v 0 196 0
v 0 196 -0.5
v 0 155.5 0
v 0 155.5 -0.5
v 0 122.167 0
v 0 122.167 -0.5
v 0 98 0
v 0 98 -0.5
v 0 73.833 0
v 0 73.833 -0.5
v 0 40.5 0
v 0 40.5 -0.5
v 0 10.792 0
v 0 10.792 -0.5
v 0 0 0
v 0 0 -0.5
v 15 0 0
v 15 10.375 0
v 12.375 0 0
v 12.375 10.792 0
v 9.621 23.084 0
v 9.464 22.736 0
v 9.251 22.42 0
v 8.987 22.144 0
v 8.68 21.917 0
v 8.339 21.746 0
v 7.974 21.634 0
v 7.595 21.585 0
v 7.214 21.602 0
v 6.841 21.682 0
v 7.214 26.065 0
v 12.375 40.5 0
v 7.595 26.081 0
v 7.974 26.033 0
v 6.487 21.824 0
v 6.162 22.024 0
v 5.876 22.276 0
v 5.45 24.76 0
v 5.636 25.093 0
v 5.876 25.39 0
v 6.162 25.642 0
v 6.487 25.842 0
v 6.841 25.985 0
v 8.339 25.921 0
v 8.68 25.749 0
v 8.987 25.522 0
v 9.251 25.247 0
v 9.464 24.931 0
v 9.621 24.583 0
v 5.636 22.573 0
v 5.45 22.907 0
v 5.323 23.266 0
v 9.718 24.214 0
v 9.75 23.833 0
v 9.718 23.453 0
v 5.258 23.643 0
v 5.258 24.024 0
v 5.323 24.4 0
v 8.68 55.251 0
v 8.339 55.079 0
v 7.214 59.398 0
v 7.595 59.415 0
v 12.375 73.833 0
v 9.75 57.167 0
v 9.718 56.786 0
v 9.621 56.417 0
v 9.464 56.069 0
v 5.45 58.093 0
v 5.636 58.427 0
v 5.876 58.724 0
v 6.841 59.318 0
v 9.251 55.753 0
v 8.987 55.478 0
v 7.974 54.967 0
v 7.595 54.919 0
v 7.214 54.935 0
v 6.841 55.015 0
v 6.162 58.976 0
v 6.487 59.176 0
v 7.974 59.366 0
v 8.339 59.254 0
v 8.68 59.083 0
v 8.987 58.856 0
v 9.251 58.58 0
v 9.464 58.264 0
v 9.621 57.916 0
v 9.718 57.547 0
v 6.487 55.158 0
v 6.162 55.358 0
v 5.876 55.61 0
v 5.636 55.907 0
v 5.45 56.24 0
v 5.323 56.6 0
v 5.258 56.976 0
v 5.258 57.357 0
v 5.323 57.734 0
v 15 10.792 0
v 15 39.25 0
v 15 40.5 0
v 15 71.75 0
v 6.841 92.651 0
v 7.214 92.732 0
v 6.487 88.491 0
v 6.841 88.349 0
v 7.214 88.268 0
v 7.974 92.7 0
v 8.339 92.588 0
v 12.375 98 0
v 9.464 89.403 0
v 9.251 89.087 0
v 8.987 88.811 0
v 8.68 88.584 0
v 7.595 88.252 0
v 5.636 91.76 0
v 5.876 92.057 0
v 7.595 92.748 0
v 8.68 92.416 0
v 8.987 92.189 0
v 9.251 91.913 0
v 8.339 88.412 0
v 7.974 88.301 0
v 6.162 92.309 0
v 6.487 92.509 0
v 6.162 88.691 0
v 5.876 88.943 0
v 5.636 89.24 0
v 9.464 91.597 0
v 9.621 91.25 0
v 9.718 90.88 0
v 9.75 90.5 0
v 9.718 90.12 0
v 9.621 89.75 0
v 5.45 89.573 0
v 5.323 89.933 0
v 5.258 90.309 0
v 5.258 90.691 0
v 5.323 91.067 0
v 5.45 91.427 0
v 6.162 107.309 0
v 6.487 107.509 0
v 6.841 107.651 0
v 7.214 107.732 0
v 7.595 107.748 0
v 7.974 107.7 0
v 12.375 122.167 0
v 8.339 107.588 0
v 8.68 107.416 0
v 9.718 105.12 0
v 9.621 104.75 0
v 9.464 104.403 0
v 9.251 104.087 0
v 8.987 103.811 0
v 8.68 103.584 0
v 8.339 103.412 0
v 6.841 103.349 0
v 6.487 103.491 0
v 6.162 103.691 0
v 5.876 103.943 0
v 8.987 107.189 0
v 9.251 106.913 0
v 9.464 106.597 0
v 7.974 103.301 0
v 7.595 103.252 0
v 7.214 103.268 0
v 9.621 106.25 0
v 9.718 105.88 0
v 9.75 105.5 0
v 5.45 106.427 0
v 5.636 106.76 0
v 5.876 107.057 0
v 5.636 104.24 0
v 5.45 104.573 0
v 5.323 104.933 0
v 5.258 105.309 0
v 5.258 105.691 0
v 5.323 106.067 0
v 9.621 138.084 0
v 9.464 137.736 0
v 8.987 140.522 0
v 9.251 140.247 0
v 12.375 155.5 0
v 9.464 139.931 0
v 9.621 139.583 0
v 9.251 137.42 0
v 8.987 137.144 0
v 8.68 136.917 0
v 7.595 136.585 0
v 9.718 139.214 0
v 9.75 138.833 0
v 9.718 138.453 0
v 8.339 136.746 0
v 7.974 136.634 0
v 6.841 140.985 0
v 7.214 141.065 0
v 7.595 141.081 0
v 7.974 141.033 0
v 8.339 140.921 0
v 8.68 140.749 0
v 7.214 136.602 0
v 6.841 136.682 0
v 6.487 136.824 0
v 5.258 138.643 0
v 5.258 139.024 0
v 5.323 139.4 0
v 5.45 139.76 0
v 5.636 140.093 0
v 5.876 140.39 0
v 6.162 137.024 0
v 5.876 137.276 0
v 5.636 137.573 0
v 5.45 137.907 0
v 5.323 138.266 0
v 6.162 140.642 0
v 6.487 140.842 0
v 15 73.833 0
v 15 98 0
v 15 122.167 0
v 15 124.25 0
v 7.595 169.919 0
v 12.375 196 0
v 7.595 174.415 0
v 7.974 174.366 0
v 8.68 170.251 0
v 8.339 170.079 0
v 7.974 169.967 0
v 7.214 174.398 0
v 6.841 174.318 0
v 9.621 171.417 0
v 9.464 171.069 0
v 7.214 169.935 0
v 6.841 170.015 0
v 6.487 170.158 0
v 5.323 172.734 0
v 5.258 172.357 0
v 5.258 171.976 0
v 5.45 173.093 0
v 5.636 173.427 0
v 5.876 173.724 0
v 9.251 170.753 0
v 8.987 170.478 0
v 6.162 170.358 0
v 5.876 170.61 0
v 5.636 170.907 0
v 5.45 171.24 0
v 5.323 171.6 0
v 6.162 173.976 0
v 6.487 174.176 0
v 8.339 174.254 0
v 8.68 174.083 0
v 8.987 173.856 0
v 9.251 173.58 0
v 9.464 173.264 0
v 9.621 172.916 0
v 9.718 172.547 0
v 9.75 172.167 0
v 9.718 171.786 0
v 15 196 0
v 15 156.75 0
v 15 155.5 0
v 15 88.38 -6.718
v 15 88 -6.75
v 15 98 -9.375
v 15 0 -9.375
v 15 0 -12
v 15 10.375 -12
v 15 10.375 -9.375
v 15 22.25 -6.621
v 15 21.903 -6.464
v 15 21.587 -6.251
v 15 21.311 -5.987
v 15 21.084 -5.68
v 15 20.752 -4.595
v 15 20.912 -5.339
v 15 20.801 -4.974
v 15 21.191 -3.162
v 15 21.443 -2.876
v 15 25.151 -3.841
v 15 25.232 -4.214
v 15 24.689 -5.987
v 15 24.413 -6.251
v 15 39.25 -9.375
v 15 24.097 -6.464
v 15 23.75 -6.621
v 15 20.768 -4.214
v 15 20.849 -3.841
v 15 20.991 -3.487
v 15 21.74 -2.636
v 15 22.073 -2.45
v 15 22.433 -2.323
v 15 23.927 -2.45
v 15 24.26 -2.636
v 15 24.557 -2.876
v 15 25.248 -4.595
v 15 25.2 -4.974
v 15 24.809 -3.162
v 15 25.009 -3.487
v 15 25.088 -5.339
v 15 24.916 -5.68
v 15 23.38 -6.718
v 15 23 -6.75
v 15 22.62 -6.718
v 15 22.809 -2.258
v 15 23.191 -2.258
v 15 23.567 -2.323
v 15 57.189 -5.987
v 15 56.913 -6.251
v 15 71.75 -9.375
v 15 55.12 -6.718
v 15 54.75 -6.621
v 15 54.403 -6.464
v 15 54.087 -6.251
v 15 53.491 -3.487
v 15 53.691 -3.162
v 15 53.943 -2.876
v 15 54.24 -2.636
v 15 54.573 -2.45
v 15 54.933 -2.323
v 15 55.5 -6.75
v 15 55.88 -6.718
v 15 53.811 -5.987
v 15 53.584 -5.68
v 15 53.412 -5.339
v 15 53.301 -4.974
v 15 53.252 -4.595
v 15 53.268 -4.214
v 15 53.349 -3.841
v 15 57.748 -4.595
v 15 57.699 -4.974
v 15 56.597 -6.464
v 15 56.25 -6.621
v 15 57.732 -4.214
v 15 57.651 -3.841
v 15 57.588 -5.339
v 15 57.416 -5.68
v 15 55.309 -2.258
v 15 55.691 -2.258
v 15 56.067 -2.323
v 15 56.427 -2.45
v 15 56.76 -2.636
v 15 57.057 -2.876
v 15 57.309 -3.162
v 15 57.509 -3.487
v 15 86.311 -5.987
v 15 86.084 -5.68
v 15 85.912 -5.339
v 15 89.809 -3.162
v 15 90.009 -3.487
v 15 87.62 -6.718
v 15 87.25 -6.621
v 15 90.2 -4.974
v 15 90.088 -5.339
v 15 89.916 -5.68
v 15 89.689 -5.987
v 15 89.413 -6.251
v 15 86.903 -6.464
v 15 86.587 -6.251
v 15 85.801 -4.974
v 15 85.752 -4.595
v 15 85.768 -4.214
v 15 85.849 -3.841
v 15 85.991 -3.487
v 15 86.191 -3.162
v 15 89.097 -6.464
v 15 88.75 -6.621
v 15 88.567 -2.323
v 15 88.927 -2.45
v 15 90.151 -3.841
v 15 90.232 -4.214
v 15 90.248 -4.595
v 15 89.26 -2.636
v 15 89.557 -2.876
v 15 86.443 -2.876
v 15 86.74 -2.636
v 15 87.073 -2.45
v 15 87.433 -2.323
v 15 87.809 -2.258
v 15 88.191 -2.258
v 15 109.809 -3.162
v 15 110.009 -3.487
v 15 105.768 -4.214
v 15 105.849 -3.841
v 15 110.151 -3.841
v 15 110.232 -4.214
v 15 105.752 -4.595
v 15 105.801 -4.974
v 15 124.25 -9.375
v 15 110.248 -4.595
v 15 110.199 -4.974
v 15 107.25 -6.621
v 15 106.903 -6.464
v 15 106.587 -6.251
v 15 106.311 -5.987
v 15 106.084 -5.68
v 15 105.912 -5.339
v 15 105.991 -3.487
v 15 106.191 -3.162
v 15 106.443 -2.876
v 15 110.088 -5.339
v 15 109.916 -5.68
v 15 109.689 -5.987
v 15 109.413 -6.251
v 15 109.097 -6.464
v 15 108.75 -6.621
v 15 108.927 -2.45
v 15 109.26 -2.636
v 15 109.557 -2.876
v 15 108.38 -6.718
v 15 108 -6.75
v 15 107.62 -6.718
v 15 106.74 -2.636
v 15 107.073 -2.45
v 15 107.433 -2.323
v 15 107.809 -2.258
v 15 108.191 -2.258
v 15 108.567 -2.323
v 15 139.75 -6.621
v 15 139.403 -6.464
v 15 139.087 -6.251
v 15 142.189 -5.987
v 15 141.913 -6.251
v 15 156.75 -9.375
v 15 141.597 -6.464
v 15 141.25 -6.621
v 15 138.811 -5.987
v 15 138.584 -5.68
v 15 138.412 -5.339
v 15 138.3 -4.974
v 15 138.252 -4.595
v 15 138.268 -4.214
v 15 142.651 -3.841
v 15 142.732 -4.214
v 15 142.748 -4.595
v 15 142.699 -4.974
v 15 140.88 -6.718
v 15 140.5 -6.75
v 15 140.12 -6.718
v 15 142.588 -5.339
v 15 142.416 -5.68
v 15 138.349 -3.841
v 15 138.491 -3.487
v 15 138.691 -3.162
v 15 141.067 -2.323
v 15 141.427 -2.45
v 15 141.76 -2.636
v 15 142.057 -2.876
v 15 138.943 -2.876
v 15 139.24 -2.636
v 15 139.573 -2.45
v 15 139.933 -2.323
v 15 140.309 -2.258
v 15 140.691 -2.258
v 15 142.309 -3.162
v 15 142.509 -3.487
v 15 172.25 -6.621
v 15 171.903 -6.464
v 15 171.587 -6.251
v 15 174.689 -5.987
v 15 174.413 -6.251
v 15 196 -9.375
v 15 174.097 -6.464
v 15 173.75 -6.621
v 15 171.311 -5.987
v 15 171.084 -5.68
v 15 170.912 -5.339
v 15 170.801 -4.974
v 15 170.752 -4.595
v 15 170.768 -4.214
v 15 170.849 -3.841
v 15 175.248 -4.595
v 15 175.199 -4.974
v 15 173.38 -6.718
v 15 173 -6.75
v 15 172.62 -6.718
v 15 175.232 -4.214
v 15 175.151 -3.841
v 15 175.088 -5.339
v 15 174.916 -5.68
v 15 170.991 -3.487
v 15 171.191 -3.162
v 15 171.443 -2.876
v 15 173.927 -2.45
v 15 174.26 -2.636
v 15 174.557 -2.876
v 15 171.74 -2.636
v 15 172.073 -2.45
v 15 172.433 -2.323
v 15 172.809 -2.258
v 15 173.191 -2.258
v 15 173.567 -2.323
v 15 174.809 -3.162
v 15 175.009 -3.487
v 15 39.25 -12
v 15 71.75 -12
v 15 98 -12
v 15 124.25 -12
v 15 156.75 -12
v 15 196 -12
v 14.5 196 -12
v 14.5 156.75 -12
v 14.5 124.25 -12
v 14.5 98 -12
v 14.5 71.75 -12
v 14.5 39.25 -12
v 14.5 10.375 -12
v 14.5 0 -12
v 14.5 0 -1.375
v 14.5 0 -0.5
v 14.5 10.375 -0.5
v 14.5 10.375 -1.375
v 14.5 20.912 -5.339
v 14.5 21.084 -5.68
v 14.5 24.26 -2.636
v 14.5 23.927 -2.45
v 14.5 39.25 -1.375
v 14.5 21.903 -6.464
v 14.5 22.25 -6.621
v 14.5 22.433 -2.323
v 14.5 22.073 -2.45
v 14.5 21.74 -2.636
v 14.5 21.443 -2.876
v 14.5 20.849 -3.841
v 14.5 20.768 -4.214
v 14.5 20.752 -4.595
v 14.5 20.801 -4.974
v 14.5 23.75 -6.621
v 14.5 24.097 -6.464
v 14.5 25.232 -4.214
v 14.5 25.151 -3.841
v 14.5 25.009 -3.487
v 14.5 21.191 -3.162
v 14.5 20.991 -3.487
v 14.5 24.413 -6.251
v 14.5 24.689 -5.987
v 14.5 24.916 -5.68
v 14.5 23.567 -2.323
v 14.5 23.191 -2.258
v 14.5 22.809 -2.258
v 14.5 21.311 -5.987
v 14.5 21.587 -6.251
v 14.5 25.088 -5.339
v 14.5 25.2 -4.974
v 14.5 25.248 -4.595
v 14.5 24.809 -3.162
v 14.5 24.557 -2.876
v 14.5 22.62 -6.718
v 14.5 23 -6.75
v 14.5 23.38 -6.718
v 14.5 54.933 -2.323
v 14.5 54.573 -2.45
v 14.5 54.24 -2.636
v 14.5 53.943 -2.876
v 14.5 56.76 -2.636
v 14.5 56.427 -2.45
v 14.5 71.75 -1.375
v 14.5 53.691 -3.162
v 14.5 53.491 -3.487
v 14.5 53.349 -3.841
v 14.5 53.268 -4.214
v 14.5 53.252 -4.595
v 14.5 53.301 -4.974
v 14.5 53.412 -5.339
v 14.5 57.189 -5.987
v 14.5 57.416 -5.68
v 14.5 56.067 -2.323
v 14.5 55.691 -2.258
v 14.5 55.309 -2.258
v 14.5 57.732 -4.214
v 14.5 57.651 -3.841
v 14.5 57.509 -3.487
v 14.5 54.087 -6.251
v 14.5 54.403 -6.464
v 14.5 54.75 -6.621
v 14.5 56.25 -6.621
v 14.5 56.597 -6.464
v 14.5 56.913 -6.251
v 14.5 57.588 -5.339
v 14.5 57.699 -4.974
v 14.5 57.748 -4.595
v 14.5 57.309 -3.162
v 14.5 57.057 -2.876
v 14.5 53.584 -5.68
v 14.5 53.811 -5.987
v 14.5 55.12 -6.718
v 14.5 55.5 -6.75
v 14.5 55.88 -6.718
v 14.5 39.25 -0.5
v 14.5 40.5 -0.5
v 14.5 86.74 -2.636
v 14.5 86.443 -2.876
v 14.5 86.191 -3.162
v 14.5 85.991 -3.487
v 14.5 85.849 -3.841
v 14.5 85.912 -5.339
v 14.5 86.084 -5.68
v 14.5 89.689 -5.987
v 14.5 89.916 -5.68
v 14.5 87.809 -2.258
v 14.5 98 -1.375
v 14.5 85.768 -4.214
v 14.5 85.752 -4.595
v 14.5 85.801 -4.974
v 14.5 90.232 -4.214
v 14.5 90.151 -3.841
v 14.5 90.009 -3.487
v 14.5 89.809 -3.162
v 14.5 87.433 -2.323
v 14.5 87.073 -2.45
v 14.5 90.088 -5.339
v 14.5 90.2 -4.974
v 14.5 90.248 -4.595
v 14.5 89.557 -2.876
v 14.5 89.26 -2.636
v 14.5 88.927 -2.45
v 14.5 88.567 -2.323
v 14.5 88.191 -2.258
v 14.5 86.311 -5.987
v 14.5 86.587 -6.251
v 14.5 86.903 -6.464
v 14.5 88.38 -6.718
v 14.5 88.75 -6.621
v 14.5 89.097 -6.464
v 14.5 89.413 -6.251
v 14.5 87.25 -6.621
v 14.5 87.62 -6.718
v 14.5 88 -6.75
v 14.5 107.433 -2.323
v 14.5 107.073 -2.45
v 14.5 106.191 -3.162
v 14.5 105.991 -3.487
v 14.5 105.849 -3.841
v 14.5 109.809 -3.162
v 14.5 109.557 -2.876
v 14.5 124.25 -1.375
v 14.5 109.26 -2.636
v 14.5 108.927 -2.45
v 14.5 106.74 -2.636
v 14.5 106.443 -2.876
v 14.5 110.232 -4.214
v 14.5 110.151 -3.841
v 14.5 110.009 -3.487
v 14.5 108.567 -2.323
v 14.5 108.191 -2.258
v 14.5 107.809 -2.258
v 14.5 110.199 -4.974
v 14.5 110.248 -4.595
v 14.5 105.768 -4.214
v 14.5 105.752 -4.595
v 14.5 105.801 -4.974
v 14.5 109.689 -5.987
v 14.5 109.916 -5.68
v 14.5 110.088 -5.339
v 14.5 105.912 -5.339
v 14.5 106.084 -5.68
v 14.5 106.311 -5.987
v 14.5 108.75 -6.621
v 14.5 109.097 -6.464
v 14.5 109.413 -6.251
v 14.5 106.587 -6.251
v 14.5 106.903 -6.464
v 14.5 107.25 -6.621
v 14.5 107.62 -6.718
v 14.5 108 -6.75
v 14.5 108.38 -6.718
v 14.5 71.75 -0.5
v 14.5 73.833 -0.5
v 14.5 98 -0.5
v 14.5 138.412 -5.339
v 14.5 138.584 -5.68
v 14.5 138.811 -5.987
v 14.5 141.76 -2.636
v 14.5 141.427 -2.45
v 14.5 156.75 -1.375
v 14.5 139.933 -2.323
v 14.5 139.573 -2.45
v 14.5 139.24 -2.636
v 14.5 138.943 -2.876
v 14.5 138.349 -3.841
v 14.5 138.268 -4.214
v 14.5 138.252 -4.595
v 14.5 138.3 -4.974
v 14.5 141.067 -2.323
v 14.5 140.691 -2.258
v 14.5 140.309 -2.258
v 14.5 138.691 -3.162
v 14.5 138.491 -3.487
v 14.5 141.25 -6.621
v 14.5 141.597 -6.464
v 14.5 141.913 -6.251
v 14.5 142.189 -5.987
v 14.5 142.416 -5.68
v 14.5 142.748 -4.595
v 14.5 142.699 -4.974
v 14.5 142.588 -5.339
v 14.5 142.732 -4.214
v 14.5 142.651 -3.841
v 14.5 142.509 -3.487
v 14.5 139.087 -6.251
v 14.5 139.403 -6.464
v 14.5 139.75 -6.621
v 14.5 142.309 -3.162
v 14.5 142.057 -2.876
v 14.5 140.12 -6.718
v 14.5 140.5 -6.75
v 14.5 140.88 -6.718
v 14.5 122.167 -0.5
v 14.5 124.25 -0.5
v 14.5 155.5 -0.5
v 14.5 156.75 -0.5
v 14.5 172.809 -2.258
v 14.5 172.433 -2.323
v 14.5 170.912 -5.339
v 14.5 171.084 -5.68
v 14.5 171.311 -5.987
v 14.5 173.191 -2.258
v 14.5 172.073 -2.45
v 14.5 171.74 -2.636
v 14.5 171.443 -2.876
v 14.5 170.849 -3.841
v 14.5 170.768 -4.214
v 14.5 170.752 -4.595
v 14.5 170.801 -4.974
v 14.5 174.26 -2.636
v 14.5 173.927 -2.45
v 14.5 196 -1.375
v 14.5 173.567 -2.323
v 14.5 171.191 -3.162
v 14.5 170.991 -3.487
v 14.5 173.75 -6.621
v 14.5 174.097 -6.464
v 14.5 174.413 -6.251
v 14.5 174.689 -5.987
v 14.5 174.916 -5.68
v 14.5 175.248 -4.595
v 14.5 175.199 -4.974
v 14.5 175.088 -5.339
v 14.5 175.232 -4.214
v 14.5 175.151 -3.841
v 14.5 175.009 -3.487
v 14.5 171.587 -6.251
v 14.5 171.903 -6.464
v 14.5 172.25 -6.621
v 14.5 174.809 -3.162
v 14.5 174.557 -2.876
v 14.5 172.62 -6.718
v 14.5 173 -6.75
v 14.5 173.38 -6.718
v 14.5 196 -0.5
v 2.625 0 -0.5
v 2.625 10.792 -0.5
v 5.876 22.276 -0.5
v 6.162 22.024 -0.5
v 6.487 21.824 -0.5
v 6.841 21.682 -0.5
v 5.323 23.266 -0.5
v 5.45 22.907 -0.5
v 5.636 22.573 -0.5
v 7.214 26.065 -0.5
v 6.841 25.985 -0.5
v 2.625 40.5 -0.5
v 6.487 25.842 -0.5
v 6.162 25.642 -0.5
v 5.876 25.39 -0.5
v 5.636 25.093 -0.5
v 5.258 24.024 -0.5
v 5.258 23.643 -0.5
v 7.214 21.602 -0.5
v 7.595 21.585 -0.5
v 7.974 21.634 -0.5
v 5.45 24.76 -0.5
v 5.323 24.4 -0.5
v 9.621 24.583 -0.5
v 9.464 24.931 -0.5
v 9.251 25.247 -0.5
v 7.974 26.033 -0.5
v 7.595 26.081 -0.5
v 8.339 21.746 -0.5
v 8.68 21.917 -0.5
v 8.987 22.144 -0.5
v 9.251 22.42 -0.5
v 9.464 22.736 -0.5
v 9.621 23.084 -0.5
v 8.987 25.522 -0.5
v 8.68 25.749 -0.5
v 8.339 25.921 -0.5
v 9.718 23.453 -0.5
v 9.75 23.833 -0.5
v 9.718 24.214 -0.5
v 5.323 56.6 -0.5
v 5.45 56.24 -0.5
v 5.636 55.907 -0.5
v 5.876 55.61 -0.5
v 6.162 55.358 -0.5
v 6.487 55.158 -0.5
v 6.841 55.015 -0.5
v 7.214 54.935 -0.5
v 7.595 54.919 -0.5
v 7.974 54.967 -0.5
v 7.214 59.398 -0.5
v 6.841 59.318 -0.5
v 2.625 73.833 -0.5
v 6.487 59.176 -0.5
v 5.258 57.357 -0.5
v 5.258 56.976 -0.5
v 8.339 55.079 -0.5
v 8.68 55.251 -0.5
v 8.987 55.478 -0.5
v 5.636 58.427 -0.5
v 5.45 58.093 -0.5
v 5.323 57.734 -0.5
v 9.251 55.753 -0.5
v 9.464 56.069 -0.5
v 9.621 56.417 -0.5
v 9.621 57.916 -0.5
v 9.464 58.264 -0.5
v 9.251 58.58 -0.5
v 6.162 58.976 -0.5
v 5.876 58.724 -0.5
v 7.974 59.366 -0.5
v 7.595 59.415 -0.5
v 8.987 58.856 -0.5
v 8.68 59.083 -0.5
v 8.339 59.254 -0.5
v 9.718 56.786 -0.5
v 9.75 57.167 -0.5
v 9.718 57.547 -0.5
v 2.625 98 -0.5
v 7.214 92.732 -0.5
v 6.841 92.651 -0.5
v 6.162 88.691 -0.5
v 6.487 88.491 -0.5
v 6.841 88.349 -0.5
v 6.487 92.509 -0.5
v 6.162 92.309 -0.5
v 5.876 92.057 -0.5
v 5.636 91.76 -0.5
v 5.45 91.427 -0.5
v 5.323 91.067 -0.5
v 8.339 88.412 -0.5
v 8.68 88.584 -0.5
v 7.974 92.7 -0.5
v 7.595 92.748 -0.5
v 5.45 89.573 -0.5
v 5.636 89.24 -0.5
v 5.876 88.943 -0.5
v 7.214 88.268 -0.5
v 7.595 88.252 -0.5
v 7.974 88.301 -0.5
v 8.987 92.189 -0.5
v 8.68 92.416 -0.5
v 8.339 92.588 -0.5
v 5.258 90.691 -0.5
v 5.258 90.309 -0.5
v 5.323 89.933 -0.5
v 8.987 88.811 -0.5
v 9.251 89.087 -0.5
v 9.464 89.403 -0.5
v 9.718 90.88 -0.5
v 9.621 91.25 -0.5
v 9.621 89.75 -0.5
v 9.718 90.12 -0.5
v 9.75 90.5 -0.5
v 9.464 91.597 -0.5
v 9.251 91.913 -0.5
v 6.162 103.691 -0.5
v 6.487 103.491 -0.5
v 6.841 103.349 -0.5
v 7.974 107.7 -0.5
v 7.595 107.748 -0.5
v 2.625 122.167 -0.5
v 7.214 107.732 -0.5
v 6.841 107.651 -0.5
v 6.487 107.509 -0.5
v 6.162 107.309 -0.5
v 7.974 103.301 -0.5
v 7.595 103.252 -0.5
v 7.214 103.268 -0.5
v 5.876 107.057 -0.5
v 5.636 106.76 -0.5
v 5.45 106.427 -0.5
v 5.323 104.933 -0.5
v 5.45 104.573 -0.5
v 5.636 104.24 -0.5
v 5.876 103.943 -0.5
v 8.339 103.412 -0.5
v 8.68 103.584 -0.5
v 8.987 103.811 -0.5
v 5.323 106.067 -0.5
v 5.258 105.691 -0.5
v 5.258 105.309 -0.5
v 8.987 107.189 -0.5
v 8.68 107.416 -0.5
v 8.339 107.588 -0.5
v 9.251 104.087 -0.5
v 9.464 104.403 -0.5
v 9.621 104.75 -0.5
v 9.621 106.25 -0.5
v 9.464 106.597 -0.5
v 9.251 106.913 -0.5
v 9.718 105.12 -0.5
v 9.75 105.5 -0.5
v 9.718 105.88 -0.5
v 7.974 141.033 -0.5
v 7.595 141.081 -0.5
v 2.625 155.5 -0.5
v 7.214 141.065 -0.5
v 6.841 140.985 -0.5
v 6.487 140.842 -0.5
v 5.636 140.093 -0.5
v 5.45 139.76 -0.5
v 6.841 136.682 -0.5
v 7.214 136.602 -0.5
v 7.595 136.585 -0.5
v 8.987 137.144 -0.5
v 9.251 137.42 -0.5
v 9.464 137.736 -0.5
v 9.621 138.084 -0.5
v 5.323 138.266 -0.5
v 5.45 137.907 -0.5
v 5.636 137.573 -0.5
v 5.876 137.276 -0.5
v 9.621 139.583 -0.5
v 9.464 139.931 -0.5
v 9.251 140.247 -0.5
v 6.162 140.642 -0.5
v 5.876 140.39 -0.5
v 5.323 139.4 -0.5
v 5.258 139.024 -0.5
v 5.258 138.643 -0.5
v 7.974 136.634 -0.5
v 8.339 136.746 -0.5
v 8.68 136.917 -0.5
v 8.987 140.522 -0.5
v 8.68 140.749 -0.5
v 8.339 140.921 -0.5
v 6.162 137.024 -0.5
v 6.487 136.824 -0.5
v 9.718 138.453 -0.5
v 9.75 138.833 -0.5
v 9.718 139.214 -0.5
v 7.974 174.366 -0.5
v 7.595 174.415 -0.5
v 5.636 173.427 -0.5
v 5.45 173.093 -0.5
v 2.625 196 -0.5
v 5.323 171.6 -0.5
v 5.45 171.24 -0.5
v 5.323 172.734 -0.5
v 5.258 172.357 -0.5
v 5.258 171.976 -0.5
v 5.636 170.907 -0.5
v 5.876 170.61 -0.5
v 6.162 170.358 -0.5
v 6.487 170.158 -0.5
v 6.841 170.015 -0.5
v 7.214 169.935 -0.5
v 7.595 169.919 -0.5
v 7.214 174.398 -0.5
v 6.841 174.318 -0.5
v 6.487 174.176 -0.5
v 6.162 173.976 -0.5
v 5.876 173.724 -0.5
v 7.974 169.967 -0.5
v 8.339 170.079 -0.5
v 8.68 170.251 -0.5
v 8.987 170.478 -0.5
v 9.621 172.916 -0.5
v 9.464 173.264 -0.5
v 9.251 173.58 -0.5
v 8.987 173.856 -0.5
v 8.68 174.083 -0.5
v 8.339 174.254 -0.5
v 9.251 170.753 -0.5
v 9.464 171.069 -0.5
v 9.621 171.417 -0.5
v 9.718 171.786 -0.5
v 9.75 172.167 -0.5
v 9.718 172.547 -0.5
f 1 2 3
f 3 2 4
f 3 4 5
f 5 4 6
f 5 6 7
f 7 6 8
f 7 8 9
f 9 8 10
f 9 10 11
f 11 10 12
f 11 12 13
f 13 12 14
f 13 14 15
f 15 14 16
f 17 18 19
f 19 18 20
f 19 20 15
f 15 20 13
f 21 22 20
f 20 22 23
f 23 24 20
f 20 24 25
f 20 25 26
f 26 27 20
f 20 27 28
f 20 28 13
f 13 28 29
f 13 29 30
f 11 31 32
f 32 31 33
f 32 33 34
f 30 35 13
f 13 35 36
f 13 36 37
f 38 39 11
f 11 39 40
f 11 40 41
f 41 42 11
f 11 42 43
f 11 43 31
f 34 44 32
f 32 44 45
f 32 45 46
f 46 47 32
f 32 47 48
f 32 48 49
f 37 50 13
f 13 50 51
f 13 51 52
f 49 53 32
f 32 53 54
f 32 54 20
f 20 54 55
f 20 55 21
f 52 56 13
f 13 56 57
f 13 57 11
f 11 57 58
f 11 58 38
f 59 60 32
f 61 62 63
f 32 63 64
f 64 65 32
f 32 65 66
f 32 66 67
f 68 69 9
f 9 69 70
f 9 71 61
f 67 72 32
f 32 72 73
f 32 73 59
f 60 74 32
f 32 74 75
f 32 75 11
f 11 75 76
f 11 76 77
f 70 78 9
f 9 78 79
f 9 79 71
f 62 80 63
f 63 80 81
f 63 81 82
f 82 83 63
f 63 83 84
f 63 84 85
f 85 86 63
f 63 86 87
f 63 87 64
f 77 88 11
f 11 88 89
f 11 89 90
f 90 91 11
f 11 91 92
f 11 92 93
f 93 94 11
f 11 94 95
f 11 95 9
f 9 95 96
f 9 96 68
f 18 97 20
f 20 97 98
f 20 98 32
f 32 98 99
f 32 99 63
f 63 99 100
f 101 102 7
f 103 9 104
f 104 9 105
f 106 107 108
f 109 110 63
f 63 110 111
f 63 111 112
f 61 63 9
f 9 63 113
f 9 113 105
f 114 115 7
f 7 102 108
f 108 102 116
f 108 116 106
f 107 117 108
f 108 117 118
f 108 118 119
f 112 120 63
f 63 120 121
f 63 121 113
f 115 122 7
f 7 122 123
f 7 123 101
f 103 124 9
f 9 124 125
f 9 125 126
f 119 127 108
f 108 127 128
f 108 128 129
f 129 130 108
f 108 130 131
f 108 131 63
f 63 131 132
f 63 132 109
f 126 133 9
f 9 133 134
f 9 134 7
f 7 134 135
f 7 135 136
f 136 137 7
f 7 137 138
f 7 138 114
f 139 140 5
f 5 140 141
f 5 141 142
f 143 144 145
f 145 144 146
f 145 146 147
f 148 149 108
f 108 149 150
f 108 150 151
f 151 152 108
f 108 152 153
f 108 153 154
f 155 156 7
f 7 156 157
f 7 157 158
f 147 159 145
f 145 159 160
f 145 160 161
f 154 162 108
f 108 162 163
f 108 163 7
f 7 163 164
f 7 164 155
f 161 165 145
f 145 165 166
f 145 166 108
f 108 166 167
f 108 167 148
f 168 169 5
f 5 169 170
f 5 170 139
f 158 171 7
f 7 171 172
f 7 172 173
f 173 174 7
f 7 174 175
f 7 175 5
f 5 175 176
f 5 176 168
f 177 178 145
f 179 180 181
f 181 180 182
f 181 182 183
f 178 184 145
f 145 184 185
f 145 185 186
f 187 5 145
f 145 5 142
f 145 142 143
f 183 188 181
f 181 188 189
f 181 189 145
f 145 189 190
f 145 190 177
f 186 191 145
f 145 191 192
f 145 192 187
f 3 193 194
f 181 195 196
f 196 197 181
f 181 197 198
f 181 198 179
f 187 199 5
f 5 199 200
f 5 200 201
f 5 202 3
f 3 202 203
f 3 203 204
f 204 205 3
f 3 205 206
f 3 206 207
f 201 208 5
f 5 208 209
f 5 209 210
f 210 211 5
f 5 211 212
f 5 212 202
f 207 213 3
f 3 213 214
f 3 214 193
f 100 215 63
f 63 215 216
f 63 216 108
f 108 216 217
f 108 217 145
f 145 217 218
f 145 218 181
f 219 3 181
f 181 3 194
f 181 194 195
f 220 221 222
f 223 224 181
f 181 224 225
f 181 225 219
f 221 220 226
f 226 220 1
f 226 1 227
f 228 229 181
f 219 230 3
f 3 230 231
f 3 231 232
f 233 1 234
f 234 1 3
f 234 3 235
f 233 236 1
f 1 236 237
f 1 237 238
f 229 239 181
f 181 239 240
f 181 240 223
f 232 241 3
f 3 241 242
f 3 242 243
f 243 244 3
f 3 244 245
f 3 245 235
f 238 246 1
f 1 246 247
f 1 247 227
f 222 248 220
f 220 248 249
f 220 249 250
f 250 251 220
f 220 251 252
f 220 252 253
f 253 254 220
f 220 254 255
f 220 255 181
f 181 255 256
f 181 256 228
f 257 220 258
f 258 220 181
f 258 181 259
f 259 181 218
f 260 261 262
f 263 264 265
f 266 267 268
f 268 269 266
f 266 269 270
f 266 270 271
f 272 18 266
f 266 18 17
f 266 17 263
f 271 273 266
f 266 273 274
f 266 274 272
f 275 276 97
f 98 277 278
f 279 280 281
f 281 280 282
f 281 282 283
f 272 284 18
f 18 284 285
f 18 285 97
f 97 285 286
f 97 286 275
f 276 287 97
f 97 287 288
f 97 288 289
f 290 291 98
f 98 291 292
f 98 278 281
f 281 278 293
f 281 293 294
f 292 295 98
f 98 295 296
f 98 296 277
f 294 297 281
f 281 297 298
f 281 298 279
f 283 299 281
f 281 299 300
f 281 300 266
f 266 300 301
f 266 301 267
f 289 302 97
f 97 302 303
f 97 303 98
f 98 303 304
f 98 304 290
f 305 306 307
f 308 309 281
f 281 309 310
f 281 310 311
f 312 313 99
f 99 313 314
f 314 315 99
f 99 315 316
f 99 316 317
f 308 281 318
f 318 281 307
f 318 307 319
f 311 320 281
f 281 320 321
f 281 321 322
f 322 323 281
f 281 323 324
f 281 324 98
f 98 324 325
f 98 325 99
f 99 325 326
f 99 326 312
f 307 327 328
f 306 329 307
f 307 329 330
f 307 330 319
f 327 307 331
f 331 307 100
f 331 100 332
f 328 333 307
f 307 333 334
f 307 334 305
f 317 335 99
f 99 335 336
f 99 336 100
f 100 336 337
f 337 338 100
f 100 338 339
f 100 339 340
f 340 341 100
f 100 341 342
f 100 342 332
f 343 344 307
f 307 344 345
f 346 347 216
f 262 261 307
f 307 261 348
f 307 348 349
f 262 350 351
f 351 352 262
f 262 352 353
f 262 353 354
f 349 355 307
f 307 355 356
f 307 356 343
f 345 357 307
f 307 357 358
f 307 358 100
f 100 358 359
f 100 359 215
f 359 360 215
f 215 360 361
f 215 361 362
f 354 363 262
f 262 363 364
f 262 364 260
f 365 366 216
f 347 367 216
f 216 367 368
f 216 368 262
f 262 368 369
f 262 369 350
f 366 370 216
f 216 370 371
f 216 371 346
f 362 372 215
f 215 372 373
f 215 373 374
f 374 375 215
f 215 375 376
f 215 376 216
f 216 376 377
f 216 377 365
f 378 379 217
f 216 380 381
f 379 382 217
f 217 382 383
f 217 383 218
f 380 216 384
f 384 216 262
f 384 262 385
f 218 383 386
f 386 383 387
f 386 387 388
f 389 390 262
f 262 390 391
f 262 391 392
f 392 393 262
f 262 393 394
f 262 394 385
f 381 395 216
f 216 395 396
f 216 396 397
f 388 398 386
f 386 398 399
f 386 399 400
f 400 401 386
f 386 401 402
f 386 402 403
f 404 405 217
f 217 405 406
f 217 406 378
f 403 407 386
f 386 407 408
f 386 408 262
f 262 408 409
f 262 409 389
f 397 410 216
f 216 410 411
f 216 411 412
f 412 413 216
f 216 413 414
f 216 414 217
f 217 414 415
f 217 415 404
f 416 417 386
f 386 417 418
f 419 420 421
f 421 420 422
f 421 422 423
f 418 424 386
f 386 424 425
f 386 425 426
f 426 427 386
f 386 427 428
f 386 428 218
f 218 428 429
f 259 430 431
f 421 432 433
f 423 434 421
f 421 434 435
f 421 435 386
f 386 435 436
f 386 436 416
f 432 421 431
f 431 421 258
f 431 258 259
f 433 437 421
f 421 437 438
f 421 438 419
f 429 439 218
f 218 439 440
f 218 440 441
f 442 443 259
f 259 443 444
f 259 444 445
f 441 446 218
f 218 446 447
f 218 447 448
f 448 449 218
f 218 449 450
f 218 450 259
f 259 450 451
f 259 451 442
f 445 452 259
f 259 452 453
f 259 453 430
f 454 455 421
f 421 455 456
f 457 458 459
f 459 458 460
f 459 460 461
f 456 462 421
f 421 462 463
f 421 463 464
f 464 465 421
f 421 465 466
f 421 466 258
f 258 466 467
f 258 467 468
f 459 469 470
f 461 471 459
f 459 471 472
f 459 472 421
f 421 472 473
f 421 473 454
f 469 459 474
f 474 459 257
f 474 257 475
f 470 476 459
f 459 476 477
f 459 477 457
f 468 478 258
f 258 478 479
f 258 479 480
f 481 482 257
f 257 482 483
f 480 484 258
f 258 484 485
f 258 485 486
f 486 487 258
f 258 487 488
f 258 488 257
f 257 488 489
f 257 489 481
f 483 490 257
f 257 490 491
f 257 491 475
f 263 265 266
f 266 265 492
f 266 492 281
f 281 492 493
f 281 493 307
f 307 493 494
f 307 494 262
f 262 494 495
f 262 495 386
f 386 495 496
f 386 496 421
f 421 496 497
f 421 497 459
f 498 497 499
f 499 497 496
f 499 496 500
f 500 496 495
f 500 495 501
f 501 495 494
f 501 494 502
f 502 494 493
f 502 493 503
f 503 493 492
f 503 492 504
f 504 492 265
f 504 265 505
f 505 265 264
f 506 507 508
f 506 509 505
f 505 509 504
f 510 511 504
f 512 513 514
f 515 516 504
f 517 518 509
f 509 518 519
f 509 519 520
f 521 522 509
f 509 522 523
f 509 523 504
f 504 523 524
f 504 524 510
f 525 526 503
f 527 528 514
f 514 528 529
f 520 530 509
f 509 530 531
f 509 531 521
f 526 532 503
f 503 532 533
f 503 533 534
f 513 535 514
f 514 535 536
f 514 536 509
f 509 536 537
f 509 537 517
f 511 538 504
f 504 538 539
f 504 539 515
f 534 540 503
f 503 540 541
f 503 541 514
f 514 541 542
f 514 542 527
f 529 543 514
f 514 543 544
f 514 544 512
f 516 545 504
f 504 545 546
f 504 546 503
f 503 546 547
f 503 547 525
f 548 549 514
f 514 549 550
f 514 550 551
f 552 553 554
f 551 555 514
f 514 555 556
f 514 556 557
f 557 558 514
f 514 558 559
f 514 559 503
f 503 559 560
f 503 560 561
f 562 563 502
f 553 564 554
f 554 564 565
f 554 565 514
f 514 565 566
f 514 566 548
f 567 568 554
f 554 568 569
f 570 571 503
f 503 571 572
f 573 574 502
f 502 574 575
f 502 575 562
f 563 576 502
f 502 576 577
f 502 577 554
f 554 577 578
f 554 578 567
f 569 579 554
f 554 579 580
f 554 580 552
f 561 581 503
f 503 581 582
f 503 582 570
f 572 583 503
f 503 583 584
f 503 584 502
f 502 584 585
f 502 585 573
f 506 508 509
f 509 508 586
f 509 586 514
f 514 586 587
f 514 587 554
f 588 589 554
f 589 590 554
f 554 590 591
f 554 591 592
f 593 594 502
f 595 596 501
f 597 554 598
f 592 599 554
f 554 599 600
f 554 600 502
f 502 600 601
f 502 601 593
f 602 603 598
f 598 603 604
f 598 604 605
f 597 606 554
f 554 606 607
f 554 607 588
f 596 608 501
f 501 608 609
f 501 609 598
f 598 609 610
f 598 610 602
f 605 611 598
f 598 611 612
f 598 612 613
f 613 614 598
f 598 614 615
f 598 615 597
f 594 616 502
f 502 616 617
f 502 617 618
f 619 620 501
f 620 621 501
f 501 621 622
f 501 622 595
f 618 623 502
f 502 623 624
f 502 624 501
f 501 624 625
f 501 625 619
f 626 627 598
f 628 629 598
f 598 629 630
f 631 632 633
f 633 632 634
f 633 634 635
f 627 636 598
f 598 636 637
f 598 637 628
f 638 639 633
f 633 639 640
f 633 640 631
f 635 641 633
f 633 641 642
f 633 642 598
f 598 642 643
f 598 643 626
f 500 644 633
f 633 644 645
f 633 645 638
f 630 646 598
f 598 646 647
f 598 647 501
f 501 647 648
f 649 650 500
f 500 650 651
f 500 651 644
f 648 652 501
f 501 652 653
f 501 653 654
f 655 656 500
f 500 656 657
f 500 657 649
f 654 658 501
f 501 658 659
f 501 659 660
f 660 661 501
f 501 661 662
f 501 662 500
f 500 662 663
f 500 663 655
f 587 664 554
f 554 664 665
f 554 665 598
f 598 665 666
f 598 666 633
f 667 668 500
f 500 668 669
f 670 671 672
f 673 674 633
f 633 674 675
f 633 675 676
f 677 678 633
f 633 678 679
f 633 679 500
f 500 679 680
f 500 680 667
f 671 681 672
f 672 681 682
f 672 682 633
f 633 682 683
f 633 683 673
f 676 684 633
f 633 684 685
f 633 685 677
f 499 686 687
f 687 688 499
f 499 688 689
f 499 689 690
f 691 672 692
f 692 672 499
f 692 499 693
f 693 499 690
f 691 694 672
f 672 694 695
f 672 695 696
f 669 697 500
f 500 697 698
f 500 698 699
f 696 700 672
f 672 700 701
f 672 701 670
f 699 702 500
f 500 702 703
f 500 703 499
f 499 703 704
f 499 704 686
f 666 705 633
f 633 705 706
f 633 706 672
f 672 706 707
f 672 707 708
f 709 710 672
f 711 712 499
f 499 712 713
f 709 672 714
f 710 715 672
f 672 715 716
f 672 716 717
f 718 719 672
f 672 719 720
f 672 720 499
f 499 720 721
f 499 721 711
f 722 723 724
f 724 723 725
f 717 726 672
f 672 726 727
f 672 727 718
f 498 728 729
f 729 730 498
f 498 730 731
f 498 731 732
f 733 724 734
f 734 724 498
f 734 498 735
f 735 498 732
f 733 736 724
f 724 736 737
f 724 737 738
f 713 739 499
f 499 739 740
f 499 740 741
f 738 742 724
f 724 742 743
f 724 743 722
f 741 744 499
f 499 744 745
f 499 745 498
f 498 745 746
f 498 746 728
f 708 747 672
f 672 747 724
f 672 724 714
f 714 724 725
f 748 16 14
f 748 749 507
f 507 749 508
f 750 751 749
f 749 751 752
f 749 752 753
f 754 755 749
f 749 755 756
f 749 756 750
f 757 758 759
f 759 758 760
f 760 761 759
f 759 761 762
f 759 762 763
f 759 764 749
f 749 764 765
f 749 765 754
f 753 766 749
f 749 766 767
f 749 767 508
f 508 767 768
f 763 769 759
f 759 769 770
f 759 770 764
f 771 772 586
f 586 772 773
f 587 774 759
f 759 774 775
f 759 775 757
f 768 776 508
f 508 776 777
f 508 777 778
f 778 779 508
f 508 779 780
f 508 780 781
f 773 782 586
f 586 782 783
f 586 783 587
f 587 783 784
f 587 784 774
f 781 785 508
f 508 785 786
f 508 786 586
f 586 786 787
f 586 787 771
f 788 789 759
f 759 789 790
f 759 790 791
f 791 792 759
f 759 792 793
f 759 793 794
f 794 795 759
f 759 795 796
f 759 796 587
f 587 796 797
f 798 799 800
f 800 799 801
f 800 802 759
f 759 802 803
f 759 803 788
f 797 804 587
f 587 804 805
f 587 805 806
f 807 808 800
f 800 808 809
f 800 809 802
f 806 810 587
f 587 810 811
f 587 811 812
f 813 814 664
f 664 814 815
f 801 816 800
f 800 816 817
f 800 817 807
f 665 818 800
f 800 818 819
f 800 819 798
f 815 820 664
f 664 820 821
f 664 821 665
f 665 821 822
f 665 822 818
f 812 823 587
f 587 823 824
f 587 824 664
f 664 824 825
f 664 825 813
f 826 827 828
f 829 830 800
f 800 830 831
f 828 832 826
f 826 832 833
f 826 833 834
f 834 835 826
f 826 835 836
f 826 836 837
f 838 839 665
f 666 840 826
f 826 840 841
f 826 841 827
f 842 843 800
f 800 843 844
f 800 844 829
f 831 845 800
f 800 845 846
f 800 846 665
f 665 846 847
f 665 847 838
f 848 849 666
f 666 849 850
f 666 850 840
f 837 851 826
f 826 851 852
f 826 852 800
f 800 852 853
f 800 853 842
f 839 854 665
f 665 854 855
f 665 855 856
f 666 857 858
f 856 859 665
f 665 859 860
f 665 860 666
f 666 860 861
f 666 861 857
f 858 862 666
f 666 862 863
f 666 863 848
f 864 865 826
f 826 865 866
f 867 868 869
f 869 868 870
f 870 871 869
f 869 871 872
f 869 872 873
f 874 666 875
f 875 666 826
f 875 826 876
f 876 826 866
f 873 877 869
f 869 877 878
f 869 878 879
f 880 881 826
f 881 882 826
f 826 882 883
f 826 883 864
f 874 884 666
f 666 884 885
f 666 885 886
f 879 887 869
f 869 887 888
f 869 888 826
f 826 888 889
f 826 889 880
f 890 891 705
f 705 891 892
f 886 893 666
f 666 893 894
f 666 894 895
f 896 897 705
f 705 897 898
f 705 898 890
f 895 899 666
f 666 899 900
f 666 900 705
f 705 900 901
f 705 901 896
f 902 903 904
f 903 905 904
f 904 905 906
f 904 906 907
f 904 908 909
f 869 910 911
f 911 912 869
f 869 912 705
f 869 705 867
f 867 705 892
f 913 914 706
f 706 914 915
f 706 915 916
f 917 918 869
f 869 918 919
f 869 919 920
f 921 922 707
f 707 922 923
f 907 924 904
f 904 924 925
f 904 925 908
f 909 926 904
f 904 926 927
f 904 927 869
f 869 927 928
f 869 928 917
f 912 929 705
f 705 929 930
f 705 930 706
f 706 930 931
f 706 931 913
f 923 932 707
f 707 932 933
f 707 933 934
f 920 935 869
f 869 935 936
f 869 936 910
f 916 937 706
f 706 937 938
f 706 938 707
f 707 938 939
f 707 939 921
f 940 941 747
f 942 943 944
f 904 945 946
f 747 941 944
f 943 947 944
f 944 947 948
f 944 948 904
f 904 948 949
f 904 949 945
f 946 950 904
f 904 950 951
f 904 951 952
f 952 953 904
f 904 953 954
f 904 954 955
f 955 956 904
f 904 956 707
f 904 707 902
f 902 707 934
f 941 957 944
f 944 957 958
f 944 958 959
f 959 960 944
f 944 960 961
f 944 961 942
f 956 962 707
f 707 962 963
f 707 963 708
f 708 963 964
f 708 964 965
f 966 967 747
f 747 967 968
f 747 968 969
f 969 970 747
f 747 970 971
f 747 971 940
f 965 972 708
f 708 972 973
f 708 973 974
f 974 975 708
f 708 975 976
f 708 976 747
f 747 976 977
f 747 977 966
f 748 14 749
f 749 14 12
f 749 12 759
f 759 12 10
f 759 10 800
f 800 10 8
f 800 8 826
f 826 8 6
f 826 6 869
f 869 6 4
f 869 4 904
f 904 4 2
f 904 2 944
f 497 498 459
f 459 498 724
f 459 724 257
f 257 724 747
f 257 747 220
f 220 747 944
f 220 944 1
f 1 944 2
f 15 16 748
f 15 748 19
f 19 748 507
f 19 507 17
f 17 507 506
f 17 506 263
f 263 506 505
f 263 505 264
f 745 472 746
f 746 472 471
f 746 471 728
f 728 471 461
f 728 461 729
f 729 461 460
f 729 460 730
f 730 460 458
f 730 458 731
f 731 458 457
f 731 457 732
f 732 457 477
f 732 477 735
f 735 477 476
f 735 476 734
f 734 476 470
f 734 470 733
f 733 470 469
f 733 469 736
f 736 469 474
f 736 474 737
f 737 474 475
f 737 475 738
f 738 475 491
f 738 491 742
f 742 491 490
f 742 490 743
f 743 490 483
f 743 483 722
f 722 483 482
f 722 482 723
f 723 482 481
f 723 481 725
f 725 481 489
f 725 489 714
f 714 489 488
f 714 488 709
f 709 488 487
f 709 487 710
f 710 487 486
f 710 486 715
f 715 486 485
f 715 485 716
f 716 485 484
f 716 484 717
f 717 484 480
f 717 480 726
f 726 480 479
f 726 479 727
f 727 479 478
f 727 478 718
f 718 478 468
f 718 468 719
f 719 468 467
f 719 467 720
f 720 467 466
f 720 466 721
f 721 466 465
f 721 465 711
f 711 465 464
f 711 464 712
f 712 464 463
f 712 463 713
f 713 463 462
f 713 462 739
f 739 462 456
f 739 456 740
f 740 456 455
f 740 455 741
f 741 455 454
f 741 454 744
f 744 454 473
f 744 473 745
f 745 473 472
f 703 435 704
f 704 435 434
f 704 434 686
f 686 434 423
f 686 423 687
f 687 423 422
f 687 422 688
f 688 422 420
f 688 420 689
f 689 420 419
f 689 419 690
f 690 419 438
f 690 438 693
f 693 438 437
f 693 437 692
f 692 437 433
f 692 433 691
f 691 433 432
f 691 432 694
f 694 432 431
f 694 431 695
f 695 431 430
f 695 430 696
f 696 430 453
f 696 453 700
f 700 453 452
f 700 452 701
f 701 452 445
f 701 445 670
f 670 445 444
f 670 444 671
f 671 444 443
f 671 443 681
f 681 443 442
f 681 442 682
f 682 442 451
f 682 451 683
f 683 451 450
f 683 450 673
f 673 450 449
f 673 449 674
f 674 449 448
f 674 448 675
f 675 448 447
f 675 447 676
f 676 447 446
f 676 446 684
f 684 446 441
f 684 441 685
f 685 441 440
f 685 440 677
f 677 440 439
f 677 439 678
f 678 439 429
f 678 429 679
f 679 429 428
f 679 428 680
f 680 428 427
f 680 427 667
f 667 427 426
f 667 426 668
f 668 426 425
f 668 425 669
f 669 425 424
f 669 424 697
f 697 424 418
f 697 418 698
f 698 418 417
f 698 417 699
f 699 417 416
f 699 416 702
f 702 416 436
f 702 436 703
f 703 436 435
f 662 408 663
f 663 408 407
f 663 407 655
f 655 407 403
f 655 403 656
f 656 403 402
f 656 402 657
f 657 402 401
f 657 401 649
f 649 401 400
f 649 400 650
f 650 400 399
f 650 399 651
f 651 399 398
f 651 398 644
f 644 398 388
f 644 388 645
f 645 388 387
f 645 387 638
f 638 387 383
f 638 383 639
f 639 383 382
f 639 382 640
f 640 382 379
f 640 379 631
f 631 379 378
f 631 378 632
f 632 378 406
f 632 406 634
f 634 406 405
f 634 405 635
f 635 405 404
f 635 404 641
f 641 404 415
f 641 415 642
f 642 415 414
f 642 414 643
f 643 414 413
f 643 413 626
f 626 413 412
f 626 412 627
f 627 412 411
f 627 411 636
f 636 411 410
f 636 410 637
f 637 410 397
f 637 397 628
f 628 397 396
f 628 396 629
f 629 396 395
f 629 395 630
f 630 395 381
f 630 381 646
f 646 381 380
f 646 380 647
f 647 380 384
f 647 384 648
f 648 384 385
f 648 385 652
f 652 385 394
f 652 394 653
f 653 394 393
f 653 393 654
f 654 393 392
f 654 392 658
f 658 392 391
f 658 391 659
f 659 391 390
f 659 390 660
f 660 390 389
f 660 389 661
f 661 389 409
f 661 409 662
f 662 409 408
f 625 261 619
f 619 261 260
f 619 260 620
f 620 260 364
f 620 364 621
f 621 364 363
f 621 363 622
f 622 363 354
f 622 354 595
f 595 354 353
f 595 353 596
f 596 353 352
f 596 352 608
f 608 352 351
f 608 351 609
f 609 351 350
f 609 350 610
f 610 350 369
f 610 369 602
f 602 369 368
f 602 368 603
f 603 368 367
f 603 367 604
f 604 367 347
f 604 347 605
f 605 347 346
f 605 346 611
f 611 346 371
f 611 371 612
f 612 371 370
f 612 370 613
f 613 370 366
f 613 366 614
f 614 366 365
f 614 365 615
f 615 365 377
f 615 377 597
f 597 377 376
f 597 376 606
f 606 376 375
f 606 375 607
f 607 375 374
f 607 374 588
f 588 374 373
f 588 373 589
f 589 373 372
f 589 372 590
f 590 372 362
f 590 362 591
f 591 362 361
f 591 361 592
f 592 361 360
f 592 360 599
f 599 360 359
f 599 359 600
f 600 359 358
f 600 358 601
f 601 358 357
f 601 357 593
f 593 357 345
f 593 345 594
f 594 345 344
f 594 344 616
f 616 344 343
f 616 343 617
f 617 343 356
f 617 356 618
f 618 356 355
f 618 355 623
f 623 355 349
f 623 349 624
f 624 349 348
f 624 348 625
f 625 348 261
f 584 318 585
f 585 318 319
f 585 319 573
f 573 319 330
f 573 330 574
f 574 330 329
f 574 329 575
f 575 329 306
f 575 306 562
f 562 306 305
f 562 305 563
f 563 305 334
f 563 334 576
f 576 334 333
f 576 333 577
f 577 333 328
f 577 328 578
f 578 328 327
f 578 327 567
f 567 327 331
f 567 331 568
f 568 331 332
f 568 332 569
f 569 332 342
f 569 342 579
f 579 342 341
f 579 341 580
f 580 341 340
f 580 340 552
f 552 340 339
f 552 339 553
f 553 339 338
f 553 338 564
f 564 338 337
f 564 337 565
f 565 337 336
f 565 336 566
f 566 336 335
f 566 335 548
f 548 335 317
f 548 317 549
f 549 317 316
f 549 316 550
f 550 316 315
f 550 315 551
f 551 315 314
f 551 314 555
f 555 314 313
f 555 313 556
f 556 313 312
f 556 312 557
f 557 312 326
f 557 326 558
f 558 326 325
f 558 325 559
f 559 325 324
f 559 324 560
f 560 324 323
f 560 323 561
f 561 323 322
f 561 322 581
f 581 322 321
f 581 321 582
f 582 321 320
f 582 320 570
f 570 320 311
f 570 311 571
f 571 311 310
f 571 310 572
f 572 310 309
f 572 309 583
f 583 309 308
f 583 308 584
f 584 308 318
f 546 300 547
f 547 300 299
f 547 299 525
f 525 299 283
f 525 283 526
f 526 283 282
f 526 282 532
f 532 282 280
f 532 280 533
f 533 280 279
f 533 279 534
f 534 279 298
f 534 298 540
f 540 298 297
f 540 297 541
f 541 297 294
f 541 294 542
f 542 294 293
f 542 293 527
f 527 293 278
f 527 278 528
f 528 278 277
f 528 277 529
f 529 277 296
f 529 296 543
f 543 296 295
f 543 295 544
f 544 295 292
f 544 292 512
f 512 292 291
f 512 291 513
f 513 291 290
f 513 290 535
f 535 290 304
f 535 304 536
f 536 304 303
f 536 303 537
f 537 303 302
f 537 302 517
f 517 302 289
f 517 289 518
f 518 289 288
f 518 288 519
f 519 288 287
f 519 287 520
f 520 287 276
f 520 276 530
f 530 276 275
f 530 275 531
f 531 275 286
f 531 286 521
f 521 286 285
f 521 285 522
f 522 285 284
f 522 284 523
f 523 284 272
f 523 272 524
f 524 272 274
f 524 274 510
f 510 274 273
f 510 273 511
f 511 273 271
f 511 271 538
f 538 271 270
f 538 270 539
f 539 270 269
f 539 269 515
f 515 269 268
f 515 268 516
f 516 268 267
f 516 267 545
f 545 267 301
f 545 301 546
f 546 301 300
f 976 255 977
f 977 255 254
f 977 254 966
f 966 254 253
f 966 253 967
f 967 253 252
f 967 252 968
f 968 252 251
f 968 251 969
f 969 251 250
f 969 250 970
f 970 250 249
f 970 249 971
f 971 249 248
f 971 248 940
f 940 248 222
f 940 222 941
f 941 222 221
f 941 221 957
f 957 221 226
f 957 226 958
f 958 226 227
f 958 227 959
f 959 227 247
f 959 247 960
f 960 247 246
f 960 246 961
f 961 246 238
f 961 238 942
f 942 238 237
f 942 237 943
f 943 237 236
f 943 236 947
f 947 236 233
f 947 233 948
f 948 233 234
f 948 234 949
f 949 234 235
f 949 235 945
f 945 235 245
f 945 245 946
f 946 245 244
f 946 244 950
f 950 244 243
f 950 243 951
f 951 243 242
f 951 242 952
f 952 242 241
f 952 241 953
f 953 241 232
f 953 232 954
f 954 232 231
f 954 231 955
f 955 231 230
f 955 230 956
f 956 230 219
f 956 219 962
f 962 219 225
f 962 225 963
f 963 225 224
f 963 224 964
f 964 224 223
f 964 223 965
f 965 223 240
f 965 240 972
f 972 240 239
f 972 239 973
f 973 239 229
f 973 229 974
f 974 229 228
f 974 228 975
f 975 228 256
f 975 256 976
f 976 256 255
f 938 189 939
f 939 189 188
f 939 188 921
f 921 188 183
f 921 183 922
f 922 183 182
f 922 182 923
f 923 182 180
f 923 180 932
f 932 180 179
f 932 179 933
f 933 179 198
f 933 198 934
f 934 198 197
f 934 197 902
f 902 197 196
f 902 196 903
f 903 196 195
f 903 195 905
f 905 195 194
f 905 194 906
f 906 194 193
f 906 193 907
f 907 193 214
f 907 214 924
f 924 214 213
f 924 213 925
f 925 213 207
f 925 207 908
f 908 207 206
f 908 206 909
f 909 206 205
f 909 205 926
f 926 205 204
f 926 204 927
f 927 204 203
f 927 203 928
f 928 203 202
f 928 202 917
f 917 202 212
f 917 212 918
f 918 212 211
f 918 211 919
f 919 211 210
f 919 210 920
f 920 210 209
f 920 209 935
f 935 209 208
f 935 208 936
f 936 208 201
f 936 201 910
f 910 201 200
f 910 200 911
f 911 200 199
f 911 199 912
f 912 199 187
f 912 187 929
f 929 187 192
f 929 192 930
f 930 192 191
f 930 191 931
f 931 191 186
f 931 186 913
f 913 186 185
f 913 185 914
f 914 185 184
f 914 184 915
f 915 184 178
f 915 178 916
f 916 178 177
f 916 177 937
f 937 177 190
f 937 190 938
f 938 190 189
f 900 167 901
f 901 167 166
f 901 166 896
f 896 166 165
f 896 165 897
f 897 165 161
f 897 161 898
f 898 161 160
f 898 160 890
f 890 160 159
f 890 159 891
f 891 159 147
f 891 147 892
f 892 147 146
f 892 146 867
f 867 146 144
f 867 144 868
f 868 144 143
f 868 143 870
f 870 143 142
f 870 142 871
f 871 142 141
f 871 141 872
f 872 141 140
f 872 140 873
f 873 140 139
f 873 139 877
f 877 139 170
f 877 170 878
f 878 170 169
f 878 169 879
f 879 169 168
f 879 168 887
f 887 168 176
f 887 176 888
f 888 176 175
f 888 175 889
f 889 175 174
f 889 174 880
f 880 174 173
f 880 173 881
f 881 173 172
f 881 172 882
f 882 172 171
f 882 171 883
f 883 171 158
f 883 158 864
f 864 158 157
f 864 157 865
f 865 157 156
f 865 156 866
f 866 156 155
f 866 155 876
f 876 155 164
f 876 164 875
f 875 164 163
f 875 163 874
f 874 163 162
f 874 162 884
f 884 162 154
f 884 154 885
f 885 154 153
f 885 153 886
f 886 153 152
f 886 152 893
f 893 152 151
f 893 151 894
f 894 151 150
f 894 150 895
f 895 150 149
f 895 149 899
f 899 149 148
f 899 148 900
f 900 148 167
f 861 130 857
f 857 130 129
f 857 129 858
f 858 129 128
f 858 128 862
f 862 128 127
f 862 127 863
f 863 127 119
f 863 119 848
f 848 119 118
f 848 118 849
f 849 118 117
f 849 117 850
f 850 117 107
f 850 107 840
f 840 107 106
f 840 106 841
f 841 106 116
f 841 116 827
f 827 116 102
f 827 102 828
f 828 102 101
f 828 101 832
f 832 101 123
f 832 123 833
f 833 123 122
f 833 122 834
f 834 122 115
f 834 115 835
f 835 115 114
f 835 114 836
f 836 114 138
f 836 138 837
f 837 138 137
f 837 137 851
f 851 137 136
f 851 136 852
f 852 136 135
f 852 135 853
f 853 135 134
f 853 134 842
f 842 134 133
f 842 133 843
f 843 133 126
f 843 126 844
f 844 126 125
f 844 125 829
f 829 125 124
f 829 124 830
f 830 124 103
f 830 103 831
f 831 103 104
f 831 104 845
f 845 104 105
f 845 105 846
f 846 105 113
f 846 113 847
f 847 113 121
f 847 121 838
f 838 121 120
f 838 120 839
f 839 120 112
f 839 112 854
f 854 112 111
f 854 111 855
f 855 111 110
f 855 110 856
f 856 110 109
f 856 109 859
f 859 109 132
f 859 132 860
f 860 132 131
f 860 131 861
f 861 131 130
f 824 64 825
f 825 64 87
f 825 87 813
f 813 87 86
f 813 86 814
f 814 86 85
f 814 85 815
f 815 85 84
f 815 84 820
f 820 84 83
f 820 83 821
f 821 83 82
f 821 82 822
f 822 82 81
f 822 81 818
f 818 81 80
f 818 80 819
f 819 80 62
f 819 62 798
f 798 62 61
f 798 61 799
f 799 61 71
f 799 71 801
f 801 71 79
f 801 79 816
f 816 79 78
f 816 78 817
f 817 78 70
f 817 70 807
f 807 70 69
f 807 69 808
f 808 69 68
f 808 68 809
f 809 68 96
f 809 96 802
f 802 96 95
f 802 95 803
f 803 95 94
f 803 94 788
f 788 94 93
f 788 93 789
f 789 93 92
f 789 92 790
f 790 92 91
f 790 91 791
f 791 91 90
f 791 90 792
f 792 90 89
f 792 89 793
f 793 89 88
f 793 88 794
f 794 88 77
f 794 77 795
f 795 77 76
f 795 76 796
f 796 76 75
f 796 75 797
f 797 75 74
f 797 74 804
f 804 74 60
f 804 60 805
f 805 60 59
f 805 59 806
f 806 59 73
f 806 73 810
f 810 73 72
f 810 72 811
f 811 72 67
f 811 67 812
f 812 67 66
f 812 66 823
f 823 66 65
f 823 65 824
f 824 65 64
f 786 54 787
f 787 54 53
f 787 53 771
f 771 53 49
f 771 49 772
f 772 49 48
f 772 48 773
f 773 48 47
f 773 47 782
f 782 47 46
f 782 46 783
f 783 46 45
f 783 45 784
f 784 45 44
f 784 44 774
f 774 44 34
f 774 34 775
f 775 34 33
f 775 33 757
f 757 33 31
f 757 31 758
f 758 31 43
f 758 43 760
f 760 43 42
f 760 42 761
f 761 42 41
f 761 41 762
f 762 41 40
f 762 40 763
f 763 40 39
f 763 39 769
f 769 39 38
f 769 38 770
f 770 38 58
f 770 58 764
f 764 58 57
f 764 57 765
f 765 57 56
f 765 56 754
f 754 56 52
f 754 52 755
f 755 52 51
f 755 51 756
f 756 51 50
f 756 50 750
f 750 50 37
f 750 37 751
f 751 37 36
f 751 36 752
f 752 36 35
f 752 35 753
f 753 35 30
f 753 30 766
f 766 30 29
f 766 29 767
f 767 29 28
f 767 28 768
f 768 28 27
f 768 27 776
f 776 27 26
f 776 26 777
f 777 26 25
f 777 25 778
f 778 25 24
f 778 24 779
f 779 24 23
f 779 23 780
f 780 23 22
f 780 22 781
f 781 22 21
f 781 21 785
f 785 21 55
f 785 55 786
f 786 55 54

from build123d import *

# Parameters (mm, degrees)
BOSS_EXTRUDE1_DEPTH = 196
CUT_EXTRUDE4_REACH  = 17
SKETCH5_R           = 2.25
CUT_EXTRUDE5_REACH  = 14
SKETCH6_R           = 2.25


with BuildPart() as part:
    # Sketch1 → Boss-Extrude1 (new body)
    with BuildSketch(Plane(origin=(0, 0, 0), x_dir=(1, 0, 0), z_dir=(0, 1, 0))):
        Polygon((0, 0), (15, 0), (15, 12), (14.5, 12), (14.5, 0.5), (0, 0.5), align=None)
    extrude(amount=BOSS_EXTRUDE1_DEPTH)

    # Sketch5 → Cut-Extrude4 (cut, up to next)
    with BuildSketch(Plane(origin=(15, 0, 0), x_dir=(0, 0, -1), z_dir=(1, 0, 0)), mode=Mode.PRIVATE) as cut_extrude4_sk1:
        with Locations((4.5, 23)):
            Circle(SKETCH5_R)
    cut_extrude4_tool1 = extrude(cut_extrude4_sk1.sketch, amount=-CUT_EXTRUDE4_REACH, mode=Mode.PRIVATE) & part.part
    add(cut_extrude4_tool1.solids().sort_by_distance((15, 23, -4.5))[0], mode=Mode.SUBTRACT)
    # Sketch5 → Cut-Extrude4 (cut, up to next)
    with BuildSketch(Plane(origin=(15, 0, 0), x_dir=(0, 0, -1), z_dir=(1, 0, 0)), mode=Mode.PRIVATE) as cut_extrude4_sk2:
        with Locations((4.5, 55.5)):
            Circle(SKETCH5_R)
    cut_extrude4_tool2 = extrude(cut_extrude4_sk2.sketch, amount=-CUT_EXTRUDE4_REACH, mode=Mode.PRIVATE) & part.part
    add(cut_extrude4_tool2.solids().sort_by_distance((15, 55.5, -4.5))[0], mode=Mode.SUBTRACT)
    # Sketch5 → Cut-Extrude4 (cut, up to next)
    with BuildSketch(Plane(origin=(15, 0, 0), x_dir=(0, 0, -1), z_dir=(1, 0, 0)), mode=Mode.PRIVATE) as cut_extrude4_sk3:
        with Locations((4.5, 88)):
            Circle(SKETCH5_R)
    cut_extrude4_tool3 = extrude(cut_extrude4_sk3.sketch, amount=-CUT_EXTRUDE4_REACH, mode=Mode.PRIVATE) & part.part
    add(cut_extrude4_tool3.solids().sort_by_distance((15, 88, -4.5))[0], mode=Mode.SUBTRACT)
    # Sketch5 → Cut-Extrude4 (cut, up to next)
    with BuildSketch(Plane(origin=(15, 0, 0), x_dir=(0, 0, -1), z_dir=(1, 0, 0)), mode=Mode.PRIVATE) as cut_extrude4_sk4:
        with Locations((4.5, 108)):
            Circle(SKETCH5_R)
    cut_extrude4_tool4 = extrude(cut_extrude4_sk4.sketch, amount=-CUT_EXTRUDE4_REACH, mode=Mode.PRIVATE) & part.part
    add(cut_extrude4_tool4.solids().sort_by_distance((15, 108, -4.5))[0], mode=Mode.SUBTRACT)
    # Sketch5 → Cut-Extrude4 (cut, up to next)
    with BuildSketch(Plane(origin=(15, 0, 0), x_dir=(0, 0, -1), z_dir=(1, 0, 0)), mode=Mode.PRIVATE) as cut_extrude4_sk5:
        with Locations((4.5, 140.5)):
            Circle(SKETCH5_R)
    cut_extrude4_tool5 = extrude(cut_extrude4_sk5.sketch, amount=-CUT_EXTRUDE4_REACH, mode=Mode.PRIVATE) & part.part
    add(cut_extrude4_tool5.solids().sort_by_distance((15, 140.5, -4.5))[0], mode=Mode.SUBTRACT)
    # Sketch5 → Cut-Extrude4 (cut, up to next)
    with BuildSketch(Plane(origin=(15, 0, 0), x_dir=(0, 0, -1), z_dir=(1, 0, 0)), mode=Mode.PRIVATE) as cut_extrude4_sk6:
        with Locations((4.5, 173)):
            Circle(SKETCH5_R)
    cut_extrude4_tool6 = extrude(cut_extrude4_sk6.sketch, amount=-CUT_EXTRUDE4_REACH, mode=Mode.PRIVATE) & part.part
    add(cut_extrude4_tool6.solids().sort_by_distance((15, 173, -4.5))[0], mode=Mode.SUBTRACT)

    # Sketch6 → Cut-Extrude5 (cut, up to next)
    with BuildSketch(Plane.XY, mode=Mode.PRIVATE) as cut_extrude5_sk1:
        with Locations((7.5, 23.833333333)):
            Circle(SKETCH6_R)
    cut_extrude5_tool1 = extrude(cut_extrude5_sk1.sketch, amount=-CUT_EXTRUDE5_REACH, mode=Mode.PRIVATE) & part.part
    add(cut_extrude5_tool1.solids().sort_by_distance((7.5, 23.833333, 0))[0], mode=Mode.SUBTRACT)
    # Sketch6 → Cut-Extrude5 (cut, up to next)
    with BuildSketch(Plane.XY, mode=Mode.PRIVATE) as cut_extrude5_sk2:
        with Locations((7.5, 57.166666667)):
            Circle(SKETCH6_R)
    cut_extrude5_tool2 = extrude(cut_extrude5_sk2.sketch, amount=-CUT_EXTRUDE5_REACH, mode=Mode.PRIVATE) & part.part
    add(cut_extrude5_tool2.solids().sort_by_distance((7.5, 57.166667, 0))[0], mode=Mode.SUBTRACT)
    # Sketch6 → Cut-Extrude5 (cut, up to next)
    with BuildSketch(Plane.XY, mode=Mode.PRIVATE) as cut_extrude5_sk3:
        with Locations((7.5, 90.5)):
            Circle(SKETCH6_R)
    cut_extrude5_tool3 = extrude(cut_extrude5_sk3.sketch, amount=-CUT_EXTRUDE5_REACH, mode=Mode.PRIVATE) & part.part
    add(cut_extrude5_tool3.solids().sort_by_distance((7.5, 90.5, 0))[0], mode=Mode.SUBTRACT)
    # Sketch6 → Cut-Extrude5 (cut, up to next)
    with BuildSketch(Plane.XY, mode=Mode.PRIVATE) as cut_extrude5_sk4:
        with Locations((7.5, 105.5)):
            Circle(SKETCH6_R)
    cut_extrude5_tool4 = extrude(cut_extrude5_sk4.sketch, amount=-CUT_EXTRUDE5_REACH, mode=Mode.PRIVATE) & part.part
    add(cut_extrude5_tool4.solids().sort_by_distance((7.5, 105.5, 0))[0], mode=Mode.SUBTRACT)
    # Sketch6 → Cut-Extrude5 (cut, up to next)
    with BuildSketch(Plane.XY, mode=Mode.PRIVATE) as cut_extrude5_sk5:
        with Locations((7.5, 138.833333333)):
            Circle(SKETCH6_R)
    cut_extrude5_tool5 = extrude(cut_extrude5_sk5.sketch, amount=-CUT_EXTRUDE5_REACH, mode=Mode.PRIVATE) & part.part
    add(cut_extrude5_tool5.solids().sort_by_distance((7.5, 138.833333, 0))[0], mode=Mode.SUBTRACT)
    # Sketch6 → Cut-Extrude5 (cut, up to next)
    with BuildSketch(Plane.XY, mode=Mode.PRIVATE) as cut_extrude5_sk6:
        with Locations((7.5, 172.166666667)):
            Circle(SKETCH6_R)
    cut_extrude5_tool6 = extrude(cut_extrude5_sk6.sketch, amount=-CUT_EXTRUDE5_REACH, mode=Mode.PRIVATE) & part.part
    add(cut_extrude5_tool6.solids().sort_by_distance((7.5, 172.166667, 0))[0], mode=Mode.SUBTRACT)


solid = part.part
